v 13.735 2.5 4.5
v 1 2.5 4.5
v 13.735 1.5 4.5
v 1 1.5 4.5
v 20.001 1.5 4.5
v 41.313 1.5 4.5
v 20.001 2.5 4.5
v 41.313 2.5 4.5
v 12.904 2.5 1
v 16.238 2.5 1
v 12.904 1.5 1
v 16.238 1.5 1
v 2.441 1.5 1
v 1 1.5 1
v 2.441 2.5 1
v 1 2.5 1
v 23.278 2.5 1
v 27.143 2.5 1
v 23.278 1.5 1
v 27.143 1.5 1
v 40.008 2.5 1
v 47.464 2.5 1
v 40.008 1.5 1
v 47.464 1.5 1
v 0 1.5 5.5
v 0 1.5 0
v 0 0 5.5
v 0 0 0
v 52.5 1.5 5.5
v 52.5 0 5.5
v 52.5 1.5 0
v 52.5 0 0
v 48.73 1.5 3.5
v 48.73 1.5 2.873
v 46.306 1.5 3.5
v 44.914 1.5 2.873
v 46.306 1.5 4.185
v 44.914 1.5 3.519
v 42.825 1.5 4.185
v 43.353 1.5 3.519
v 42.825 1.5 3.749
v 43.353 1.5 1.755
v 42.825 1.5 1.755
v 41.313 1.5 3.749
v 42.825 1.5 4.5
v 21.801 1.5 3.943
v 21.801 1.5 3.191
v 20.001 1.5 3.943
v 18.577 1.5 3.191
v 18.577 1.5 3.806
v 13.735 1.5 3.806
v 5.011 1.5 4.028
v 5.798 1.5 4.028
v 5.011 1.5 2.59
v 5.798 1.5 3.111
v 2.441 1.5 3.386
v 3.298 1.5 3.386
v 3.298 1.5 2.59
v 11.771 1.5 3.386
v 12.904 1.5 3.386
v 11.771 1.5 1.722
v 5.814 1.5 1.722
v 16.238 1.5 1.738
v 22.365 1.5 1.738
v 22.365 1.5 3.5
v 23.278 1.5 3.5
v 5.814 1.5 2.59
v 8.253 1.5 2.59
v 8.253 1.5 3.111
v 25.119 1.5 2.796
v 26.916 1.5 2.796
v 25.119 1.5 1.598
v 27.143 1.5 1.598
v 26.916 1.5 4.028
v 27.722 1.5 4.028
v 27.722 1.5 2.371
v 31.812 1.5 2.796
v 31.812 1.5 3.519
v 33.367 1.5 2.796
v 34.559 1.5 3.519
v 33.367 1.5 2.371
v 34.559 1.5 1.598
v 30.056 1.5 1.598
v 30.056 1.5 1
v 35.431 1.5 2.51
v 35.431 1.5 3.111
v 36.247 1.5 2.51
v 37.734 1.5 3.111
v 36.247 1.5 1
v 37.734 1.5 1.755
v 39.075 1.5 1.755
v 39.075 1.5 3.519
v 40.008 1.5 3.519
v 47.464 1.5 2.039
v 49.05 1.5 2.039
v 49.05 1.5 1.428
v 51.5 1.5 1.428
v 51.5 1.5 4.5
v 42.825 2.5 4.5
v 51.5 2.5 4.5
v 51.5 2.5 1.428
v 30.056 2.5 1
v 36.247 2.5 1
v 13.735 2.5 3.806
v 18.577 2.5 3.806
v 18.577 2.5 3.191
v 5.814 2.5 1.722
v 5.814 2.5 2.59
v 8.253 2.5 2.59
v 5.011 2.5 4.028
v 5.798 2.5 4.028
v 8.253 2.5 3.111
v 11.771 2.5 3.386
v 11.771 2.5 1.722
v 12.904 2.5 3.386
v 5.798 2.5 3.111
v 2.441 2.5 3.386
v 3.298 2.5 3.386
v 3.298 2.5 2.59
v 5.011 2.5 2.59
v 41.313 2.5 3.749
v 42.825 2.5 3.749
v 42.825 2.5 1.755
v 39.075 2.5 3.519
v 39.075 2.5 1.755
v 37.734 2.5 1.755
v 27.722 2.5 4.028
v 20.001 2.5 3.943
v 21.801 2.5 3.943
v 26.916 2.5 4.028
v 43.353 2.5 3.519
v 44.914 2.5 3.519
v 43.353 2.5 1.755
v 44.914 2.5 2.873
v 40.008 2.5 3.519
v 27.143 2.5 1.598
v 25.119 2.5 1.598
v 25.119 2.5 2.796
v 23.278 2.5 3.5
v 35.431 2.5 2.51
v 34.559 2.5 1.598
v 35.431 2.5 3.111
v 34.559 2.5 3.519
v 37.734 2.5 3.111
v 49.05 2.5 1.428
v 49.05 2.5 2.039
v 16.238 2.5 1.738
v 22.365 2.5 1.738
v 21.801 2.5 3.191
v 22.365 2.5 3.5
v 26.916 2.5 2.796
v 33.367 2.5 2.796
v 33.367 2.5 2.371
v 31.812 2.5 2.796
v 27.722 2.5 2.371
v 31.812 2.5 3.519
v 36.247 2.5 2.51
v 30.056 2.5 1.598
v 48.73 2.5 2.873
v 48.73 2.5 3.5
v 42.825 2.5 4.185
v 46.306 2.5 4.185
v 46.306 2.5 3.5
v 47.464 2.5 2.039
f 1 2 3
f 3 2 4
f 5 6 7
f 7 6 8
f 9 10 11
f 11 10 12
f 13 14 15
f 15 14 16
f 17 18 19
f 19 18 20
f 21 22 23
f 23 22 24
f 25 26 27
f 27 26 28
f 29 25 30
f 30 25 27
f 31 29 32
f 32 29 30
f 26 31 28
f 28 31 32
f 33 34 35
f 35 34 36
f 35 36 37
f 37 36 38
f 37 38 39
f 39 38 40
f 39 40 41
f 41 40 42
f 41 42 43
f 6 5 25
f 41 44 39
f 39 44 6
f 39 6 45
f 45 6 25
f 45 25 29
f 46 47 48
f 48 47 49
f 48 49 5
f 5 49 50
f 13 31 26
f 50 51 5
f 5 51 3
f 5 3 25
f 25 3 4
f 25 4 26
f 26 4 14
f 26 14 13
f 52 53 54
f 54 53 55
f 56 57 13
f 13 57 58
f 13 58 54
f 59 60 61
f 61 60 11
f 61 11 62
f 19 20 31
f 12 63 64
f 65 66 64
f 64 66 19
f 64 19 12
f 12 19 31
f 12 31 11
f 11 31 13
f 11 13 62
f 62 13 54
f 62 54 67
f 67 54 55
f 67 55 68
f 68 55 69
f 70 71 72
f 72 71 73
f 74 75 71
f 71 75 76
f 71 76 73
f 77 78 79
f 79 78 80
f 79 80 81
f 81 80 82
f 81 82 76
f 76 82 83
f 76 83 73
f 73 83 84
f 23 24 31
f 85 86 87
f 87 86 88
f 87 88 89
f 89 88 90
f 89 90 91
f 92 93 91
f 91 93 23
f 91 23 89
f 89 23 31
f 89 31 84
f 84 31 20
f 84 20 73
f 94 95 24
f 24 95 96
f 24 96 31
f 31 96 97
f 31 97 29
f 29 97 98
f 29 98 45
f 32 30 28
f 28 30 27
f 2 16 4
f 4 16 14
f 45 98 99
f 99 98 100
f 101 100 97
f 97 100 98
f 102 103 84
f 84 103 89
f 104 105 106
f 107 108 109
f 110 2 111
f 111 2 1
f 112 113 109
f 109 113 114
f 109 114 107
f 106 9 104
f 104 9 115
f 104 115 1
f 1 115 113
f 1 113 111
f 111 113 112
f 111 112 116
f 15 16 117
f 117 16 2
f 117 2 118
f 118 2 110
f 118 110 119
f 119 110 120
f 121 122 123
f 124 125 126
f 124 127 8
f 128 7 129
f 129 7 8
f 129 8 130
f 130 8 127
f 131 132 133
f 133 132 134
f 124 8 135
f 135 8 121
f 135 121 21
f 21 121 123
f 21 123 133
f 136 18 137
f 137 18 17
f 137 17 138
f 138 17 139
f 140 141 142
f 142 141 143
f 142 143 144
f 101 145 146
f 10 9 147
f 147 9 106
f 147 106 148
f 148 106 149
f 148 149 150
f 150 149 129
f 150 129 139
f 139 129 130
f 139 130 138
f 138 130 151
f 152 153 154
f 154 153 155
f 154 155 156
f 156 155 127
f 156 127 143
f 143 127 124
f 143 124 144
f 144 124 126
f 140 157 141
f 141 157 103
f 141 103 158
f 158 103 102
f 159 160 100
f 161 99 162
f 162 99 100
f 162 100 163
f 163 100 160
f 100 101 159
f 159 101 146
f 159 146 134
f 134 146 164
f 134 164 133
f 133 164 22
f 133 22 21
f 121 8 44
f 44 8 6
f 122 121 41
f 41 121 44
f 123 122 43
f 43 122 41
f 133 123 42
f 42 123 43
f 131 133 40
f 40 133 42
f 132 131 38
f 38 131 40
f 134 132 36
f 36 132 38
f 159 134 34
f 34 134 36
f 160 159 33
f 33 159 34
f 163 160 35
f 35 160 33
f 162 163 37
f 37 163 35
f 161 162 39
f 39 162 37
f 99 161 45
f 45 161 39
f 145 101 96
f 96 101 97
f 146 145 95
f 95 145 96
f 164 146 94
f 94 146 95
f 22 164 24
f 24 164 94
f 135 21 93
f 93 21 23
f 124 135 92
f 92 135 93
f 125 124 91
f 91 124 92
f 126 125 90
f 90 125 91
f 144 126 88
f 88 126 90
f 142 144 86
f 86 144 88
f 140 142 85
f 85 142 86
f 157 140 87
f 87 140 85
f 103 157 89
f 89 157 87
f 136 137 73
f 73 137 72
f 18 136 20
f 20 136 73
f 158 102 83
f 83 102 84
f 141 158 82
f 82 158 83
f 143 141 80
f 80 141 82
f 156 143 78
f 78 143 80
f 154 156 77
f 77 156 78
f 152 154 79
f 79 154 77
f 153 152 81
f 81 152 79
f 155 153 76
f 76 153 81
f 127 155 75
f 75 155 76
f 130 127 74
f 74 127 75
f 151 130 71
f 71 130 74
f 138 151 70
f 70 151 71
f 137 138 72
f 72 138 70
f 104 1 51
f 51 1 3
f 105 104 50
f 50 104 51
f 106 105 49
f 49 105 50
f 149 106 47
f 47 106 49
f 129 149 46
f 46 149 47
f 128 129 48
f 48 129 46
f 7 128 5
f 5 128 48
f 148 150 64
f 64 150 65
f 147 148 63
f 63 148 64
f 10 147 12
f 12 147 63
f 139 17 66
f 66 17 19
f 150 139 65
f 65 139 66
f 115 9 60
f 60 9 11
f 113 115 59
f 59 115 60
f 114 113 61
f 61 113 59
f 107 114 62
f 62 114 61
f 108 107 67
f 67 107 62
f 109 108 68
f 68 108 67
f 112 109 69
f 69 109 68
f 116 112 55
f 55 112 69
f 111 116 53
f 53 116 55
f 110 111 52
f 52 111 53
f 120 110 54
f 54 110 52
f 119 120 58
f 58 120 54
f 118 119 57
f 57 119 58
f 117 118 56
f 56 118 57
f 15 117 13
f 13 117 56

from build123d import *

# Parameters (mm, degrees)
SKETCH_1_W          = 52.5
SKETCH_1_H          = 5.5
EXTRUDE_1_DEPTH     = 1.5
SKETCH_2_W          = 50.5
SKETCH_2_H          = 3.5
EXTRUDE_2_DEPTH     = 1
CUT_EXTRUDE_1_DEPTH = 1


with BuildPart() as part:
    # 草图1 → 凸台-拉伸1 (new body)
    with BuildSketch(Plane(origin=(0, 0, 0), x_dir=(1, 0, 0), z_dir=(0, 1, 0))):
        with Locations((26.25, -2.75)):
            Rectangle(SKETCH_1_W, SKETCH_1_H)
    extrude(amount=EXTRUDE_1_DEPTH)

    # 草图2 → 凸台-拉伸2 (add)
    with BuildSketch(Plane(origin=(0, 1.5, 0), x_dir=(1, 0, 0), z_dir=(0, 1, 0))):
        with Locations((26.25, -2.75)):
            Rectangle(SKETCH_2_W, SKETCH_2_H)
    extrude(amount=EXTRUDE_2_DEPTH)

    # 草图3 → 切除-拉伸1 (cut)
    with BuildSketch(Plane(origin=(0, 2.5, 0), x_dir=(1, 0, 0), z_dir=(0, 1, 0))):
        Polygon((2.441285036, -1), (2.441285036, -3.385807874), (3.297792845, -3.385807874), (3.297792845, -2.590222366), (5.010808462, -2.590222366), (5.010808462, -4.02818873), (5.797531803, -4.02818873), (5.797531803, -3.110546333), (8.253302308, -3.110546333), (8.253302308, -2.590222366), (5.813610605, -2.590222366), (5.813610605, -1.721967074), (11.771102235, -1.721967074), (11.771102235, -3.385807874), (12.90419018, -3.385807874), (12.90419018, -1), align=None)
        Polygon((13.734934002, -4.5), (13.734934002, -3.806276904), (18.57720237, -3.806276904), (18.57720237, -3.191075541), (21.800907432, -3.191075541), (21.800907432, -3.942903937), (20.000873813, -3.942903937), (20.000873813, -4.5), align=None)
        Polygon((16.237613485, -1), (16.237613485, -1.73768688), (22.365277211, -1.73768688), (22.365277211, -3.5), (23.277541754, -3.5), (23.277541754, -1), align=None)
        Polygon((25.11928338, -1.598265318), (25.11928338, -2.796313913), (26.916272405, -2.796313913), (26.916272405, -4.02818873), (27.721819209, -4.02818873), (27.721819209, -2.371232168), (33.367210511, -2.371232168), (33.367210511, -2.796313913), (31.81151837, -2.796313913), (31.81151837, -3.519184621), (34.558639523, -3.519184621), (34.558639523, -1.598265318), (30.055839437, -1.598265318), (30.055839437, -1), (27.143477914, -1), (27.143477914, -1.598265318), align=None)
        Polygon((36.247190267, -1), (36.247190267, -2.51018455), (35.430902313, -2.51018455), (35.430902313, -3.110546333), (37.734000469, -3.110546333), (37.734000469, -1.755092275), (39.075044965, -1.755092275), (39.075044965, -3.519184621), (40.007945484, -3.519184621), (40.007945484, -1.42807574), (40.007945484, -1), align=None)
        Polygon((41.31314972, -4.5), (41.31314972, -3.749200991), (42.825396523, -3.749200991), (42.825396523, -1.755092275), (43.353482708, -1.755092275), (43.353482708, -3.519184621), (44.913737346, -3.519184621), (44.913737346, -2.873049456), (48.730360229, -2.873049456), (48.730360229, -3.5), (46.305964561, -3.5), (46.305964561, -4.185040027), (42.825396523, -4.185040027), (42.825396523, -4.5), align=None)
        Polygon((47.464486029, -1), (47.464486029, -2.039438327), (49.049976505, -2.039438327), (49.049976505, -1.42807574), (51.5, -1.42807574), (51.5, -1), align=None)
    extrude(amount=-CUT_EXTRUDE_1_DEPTH, mode=Mode.SUBTRACT)


solid = part.part
